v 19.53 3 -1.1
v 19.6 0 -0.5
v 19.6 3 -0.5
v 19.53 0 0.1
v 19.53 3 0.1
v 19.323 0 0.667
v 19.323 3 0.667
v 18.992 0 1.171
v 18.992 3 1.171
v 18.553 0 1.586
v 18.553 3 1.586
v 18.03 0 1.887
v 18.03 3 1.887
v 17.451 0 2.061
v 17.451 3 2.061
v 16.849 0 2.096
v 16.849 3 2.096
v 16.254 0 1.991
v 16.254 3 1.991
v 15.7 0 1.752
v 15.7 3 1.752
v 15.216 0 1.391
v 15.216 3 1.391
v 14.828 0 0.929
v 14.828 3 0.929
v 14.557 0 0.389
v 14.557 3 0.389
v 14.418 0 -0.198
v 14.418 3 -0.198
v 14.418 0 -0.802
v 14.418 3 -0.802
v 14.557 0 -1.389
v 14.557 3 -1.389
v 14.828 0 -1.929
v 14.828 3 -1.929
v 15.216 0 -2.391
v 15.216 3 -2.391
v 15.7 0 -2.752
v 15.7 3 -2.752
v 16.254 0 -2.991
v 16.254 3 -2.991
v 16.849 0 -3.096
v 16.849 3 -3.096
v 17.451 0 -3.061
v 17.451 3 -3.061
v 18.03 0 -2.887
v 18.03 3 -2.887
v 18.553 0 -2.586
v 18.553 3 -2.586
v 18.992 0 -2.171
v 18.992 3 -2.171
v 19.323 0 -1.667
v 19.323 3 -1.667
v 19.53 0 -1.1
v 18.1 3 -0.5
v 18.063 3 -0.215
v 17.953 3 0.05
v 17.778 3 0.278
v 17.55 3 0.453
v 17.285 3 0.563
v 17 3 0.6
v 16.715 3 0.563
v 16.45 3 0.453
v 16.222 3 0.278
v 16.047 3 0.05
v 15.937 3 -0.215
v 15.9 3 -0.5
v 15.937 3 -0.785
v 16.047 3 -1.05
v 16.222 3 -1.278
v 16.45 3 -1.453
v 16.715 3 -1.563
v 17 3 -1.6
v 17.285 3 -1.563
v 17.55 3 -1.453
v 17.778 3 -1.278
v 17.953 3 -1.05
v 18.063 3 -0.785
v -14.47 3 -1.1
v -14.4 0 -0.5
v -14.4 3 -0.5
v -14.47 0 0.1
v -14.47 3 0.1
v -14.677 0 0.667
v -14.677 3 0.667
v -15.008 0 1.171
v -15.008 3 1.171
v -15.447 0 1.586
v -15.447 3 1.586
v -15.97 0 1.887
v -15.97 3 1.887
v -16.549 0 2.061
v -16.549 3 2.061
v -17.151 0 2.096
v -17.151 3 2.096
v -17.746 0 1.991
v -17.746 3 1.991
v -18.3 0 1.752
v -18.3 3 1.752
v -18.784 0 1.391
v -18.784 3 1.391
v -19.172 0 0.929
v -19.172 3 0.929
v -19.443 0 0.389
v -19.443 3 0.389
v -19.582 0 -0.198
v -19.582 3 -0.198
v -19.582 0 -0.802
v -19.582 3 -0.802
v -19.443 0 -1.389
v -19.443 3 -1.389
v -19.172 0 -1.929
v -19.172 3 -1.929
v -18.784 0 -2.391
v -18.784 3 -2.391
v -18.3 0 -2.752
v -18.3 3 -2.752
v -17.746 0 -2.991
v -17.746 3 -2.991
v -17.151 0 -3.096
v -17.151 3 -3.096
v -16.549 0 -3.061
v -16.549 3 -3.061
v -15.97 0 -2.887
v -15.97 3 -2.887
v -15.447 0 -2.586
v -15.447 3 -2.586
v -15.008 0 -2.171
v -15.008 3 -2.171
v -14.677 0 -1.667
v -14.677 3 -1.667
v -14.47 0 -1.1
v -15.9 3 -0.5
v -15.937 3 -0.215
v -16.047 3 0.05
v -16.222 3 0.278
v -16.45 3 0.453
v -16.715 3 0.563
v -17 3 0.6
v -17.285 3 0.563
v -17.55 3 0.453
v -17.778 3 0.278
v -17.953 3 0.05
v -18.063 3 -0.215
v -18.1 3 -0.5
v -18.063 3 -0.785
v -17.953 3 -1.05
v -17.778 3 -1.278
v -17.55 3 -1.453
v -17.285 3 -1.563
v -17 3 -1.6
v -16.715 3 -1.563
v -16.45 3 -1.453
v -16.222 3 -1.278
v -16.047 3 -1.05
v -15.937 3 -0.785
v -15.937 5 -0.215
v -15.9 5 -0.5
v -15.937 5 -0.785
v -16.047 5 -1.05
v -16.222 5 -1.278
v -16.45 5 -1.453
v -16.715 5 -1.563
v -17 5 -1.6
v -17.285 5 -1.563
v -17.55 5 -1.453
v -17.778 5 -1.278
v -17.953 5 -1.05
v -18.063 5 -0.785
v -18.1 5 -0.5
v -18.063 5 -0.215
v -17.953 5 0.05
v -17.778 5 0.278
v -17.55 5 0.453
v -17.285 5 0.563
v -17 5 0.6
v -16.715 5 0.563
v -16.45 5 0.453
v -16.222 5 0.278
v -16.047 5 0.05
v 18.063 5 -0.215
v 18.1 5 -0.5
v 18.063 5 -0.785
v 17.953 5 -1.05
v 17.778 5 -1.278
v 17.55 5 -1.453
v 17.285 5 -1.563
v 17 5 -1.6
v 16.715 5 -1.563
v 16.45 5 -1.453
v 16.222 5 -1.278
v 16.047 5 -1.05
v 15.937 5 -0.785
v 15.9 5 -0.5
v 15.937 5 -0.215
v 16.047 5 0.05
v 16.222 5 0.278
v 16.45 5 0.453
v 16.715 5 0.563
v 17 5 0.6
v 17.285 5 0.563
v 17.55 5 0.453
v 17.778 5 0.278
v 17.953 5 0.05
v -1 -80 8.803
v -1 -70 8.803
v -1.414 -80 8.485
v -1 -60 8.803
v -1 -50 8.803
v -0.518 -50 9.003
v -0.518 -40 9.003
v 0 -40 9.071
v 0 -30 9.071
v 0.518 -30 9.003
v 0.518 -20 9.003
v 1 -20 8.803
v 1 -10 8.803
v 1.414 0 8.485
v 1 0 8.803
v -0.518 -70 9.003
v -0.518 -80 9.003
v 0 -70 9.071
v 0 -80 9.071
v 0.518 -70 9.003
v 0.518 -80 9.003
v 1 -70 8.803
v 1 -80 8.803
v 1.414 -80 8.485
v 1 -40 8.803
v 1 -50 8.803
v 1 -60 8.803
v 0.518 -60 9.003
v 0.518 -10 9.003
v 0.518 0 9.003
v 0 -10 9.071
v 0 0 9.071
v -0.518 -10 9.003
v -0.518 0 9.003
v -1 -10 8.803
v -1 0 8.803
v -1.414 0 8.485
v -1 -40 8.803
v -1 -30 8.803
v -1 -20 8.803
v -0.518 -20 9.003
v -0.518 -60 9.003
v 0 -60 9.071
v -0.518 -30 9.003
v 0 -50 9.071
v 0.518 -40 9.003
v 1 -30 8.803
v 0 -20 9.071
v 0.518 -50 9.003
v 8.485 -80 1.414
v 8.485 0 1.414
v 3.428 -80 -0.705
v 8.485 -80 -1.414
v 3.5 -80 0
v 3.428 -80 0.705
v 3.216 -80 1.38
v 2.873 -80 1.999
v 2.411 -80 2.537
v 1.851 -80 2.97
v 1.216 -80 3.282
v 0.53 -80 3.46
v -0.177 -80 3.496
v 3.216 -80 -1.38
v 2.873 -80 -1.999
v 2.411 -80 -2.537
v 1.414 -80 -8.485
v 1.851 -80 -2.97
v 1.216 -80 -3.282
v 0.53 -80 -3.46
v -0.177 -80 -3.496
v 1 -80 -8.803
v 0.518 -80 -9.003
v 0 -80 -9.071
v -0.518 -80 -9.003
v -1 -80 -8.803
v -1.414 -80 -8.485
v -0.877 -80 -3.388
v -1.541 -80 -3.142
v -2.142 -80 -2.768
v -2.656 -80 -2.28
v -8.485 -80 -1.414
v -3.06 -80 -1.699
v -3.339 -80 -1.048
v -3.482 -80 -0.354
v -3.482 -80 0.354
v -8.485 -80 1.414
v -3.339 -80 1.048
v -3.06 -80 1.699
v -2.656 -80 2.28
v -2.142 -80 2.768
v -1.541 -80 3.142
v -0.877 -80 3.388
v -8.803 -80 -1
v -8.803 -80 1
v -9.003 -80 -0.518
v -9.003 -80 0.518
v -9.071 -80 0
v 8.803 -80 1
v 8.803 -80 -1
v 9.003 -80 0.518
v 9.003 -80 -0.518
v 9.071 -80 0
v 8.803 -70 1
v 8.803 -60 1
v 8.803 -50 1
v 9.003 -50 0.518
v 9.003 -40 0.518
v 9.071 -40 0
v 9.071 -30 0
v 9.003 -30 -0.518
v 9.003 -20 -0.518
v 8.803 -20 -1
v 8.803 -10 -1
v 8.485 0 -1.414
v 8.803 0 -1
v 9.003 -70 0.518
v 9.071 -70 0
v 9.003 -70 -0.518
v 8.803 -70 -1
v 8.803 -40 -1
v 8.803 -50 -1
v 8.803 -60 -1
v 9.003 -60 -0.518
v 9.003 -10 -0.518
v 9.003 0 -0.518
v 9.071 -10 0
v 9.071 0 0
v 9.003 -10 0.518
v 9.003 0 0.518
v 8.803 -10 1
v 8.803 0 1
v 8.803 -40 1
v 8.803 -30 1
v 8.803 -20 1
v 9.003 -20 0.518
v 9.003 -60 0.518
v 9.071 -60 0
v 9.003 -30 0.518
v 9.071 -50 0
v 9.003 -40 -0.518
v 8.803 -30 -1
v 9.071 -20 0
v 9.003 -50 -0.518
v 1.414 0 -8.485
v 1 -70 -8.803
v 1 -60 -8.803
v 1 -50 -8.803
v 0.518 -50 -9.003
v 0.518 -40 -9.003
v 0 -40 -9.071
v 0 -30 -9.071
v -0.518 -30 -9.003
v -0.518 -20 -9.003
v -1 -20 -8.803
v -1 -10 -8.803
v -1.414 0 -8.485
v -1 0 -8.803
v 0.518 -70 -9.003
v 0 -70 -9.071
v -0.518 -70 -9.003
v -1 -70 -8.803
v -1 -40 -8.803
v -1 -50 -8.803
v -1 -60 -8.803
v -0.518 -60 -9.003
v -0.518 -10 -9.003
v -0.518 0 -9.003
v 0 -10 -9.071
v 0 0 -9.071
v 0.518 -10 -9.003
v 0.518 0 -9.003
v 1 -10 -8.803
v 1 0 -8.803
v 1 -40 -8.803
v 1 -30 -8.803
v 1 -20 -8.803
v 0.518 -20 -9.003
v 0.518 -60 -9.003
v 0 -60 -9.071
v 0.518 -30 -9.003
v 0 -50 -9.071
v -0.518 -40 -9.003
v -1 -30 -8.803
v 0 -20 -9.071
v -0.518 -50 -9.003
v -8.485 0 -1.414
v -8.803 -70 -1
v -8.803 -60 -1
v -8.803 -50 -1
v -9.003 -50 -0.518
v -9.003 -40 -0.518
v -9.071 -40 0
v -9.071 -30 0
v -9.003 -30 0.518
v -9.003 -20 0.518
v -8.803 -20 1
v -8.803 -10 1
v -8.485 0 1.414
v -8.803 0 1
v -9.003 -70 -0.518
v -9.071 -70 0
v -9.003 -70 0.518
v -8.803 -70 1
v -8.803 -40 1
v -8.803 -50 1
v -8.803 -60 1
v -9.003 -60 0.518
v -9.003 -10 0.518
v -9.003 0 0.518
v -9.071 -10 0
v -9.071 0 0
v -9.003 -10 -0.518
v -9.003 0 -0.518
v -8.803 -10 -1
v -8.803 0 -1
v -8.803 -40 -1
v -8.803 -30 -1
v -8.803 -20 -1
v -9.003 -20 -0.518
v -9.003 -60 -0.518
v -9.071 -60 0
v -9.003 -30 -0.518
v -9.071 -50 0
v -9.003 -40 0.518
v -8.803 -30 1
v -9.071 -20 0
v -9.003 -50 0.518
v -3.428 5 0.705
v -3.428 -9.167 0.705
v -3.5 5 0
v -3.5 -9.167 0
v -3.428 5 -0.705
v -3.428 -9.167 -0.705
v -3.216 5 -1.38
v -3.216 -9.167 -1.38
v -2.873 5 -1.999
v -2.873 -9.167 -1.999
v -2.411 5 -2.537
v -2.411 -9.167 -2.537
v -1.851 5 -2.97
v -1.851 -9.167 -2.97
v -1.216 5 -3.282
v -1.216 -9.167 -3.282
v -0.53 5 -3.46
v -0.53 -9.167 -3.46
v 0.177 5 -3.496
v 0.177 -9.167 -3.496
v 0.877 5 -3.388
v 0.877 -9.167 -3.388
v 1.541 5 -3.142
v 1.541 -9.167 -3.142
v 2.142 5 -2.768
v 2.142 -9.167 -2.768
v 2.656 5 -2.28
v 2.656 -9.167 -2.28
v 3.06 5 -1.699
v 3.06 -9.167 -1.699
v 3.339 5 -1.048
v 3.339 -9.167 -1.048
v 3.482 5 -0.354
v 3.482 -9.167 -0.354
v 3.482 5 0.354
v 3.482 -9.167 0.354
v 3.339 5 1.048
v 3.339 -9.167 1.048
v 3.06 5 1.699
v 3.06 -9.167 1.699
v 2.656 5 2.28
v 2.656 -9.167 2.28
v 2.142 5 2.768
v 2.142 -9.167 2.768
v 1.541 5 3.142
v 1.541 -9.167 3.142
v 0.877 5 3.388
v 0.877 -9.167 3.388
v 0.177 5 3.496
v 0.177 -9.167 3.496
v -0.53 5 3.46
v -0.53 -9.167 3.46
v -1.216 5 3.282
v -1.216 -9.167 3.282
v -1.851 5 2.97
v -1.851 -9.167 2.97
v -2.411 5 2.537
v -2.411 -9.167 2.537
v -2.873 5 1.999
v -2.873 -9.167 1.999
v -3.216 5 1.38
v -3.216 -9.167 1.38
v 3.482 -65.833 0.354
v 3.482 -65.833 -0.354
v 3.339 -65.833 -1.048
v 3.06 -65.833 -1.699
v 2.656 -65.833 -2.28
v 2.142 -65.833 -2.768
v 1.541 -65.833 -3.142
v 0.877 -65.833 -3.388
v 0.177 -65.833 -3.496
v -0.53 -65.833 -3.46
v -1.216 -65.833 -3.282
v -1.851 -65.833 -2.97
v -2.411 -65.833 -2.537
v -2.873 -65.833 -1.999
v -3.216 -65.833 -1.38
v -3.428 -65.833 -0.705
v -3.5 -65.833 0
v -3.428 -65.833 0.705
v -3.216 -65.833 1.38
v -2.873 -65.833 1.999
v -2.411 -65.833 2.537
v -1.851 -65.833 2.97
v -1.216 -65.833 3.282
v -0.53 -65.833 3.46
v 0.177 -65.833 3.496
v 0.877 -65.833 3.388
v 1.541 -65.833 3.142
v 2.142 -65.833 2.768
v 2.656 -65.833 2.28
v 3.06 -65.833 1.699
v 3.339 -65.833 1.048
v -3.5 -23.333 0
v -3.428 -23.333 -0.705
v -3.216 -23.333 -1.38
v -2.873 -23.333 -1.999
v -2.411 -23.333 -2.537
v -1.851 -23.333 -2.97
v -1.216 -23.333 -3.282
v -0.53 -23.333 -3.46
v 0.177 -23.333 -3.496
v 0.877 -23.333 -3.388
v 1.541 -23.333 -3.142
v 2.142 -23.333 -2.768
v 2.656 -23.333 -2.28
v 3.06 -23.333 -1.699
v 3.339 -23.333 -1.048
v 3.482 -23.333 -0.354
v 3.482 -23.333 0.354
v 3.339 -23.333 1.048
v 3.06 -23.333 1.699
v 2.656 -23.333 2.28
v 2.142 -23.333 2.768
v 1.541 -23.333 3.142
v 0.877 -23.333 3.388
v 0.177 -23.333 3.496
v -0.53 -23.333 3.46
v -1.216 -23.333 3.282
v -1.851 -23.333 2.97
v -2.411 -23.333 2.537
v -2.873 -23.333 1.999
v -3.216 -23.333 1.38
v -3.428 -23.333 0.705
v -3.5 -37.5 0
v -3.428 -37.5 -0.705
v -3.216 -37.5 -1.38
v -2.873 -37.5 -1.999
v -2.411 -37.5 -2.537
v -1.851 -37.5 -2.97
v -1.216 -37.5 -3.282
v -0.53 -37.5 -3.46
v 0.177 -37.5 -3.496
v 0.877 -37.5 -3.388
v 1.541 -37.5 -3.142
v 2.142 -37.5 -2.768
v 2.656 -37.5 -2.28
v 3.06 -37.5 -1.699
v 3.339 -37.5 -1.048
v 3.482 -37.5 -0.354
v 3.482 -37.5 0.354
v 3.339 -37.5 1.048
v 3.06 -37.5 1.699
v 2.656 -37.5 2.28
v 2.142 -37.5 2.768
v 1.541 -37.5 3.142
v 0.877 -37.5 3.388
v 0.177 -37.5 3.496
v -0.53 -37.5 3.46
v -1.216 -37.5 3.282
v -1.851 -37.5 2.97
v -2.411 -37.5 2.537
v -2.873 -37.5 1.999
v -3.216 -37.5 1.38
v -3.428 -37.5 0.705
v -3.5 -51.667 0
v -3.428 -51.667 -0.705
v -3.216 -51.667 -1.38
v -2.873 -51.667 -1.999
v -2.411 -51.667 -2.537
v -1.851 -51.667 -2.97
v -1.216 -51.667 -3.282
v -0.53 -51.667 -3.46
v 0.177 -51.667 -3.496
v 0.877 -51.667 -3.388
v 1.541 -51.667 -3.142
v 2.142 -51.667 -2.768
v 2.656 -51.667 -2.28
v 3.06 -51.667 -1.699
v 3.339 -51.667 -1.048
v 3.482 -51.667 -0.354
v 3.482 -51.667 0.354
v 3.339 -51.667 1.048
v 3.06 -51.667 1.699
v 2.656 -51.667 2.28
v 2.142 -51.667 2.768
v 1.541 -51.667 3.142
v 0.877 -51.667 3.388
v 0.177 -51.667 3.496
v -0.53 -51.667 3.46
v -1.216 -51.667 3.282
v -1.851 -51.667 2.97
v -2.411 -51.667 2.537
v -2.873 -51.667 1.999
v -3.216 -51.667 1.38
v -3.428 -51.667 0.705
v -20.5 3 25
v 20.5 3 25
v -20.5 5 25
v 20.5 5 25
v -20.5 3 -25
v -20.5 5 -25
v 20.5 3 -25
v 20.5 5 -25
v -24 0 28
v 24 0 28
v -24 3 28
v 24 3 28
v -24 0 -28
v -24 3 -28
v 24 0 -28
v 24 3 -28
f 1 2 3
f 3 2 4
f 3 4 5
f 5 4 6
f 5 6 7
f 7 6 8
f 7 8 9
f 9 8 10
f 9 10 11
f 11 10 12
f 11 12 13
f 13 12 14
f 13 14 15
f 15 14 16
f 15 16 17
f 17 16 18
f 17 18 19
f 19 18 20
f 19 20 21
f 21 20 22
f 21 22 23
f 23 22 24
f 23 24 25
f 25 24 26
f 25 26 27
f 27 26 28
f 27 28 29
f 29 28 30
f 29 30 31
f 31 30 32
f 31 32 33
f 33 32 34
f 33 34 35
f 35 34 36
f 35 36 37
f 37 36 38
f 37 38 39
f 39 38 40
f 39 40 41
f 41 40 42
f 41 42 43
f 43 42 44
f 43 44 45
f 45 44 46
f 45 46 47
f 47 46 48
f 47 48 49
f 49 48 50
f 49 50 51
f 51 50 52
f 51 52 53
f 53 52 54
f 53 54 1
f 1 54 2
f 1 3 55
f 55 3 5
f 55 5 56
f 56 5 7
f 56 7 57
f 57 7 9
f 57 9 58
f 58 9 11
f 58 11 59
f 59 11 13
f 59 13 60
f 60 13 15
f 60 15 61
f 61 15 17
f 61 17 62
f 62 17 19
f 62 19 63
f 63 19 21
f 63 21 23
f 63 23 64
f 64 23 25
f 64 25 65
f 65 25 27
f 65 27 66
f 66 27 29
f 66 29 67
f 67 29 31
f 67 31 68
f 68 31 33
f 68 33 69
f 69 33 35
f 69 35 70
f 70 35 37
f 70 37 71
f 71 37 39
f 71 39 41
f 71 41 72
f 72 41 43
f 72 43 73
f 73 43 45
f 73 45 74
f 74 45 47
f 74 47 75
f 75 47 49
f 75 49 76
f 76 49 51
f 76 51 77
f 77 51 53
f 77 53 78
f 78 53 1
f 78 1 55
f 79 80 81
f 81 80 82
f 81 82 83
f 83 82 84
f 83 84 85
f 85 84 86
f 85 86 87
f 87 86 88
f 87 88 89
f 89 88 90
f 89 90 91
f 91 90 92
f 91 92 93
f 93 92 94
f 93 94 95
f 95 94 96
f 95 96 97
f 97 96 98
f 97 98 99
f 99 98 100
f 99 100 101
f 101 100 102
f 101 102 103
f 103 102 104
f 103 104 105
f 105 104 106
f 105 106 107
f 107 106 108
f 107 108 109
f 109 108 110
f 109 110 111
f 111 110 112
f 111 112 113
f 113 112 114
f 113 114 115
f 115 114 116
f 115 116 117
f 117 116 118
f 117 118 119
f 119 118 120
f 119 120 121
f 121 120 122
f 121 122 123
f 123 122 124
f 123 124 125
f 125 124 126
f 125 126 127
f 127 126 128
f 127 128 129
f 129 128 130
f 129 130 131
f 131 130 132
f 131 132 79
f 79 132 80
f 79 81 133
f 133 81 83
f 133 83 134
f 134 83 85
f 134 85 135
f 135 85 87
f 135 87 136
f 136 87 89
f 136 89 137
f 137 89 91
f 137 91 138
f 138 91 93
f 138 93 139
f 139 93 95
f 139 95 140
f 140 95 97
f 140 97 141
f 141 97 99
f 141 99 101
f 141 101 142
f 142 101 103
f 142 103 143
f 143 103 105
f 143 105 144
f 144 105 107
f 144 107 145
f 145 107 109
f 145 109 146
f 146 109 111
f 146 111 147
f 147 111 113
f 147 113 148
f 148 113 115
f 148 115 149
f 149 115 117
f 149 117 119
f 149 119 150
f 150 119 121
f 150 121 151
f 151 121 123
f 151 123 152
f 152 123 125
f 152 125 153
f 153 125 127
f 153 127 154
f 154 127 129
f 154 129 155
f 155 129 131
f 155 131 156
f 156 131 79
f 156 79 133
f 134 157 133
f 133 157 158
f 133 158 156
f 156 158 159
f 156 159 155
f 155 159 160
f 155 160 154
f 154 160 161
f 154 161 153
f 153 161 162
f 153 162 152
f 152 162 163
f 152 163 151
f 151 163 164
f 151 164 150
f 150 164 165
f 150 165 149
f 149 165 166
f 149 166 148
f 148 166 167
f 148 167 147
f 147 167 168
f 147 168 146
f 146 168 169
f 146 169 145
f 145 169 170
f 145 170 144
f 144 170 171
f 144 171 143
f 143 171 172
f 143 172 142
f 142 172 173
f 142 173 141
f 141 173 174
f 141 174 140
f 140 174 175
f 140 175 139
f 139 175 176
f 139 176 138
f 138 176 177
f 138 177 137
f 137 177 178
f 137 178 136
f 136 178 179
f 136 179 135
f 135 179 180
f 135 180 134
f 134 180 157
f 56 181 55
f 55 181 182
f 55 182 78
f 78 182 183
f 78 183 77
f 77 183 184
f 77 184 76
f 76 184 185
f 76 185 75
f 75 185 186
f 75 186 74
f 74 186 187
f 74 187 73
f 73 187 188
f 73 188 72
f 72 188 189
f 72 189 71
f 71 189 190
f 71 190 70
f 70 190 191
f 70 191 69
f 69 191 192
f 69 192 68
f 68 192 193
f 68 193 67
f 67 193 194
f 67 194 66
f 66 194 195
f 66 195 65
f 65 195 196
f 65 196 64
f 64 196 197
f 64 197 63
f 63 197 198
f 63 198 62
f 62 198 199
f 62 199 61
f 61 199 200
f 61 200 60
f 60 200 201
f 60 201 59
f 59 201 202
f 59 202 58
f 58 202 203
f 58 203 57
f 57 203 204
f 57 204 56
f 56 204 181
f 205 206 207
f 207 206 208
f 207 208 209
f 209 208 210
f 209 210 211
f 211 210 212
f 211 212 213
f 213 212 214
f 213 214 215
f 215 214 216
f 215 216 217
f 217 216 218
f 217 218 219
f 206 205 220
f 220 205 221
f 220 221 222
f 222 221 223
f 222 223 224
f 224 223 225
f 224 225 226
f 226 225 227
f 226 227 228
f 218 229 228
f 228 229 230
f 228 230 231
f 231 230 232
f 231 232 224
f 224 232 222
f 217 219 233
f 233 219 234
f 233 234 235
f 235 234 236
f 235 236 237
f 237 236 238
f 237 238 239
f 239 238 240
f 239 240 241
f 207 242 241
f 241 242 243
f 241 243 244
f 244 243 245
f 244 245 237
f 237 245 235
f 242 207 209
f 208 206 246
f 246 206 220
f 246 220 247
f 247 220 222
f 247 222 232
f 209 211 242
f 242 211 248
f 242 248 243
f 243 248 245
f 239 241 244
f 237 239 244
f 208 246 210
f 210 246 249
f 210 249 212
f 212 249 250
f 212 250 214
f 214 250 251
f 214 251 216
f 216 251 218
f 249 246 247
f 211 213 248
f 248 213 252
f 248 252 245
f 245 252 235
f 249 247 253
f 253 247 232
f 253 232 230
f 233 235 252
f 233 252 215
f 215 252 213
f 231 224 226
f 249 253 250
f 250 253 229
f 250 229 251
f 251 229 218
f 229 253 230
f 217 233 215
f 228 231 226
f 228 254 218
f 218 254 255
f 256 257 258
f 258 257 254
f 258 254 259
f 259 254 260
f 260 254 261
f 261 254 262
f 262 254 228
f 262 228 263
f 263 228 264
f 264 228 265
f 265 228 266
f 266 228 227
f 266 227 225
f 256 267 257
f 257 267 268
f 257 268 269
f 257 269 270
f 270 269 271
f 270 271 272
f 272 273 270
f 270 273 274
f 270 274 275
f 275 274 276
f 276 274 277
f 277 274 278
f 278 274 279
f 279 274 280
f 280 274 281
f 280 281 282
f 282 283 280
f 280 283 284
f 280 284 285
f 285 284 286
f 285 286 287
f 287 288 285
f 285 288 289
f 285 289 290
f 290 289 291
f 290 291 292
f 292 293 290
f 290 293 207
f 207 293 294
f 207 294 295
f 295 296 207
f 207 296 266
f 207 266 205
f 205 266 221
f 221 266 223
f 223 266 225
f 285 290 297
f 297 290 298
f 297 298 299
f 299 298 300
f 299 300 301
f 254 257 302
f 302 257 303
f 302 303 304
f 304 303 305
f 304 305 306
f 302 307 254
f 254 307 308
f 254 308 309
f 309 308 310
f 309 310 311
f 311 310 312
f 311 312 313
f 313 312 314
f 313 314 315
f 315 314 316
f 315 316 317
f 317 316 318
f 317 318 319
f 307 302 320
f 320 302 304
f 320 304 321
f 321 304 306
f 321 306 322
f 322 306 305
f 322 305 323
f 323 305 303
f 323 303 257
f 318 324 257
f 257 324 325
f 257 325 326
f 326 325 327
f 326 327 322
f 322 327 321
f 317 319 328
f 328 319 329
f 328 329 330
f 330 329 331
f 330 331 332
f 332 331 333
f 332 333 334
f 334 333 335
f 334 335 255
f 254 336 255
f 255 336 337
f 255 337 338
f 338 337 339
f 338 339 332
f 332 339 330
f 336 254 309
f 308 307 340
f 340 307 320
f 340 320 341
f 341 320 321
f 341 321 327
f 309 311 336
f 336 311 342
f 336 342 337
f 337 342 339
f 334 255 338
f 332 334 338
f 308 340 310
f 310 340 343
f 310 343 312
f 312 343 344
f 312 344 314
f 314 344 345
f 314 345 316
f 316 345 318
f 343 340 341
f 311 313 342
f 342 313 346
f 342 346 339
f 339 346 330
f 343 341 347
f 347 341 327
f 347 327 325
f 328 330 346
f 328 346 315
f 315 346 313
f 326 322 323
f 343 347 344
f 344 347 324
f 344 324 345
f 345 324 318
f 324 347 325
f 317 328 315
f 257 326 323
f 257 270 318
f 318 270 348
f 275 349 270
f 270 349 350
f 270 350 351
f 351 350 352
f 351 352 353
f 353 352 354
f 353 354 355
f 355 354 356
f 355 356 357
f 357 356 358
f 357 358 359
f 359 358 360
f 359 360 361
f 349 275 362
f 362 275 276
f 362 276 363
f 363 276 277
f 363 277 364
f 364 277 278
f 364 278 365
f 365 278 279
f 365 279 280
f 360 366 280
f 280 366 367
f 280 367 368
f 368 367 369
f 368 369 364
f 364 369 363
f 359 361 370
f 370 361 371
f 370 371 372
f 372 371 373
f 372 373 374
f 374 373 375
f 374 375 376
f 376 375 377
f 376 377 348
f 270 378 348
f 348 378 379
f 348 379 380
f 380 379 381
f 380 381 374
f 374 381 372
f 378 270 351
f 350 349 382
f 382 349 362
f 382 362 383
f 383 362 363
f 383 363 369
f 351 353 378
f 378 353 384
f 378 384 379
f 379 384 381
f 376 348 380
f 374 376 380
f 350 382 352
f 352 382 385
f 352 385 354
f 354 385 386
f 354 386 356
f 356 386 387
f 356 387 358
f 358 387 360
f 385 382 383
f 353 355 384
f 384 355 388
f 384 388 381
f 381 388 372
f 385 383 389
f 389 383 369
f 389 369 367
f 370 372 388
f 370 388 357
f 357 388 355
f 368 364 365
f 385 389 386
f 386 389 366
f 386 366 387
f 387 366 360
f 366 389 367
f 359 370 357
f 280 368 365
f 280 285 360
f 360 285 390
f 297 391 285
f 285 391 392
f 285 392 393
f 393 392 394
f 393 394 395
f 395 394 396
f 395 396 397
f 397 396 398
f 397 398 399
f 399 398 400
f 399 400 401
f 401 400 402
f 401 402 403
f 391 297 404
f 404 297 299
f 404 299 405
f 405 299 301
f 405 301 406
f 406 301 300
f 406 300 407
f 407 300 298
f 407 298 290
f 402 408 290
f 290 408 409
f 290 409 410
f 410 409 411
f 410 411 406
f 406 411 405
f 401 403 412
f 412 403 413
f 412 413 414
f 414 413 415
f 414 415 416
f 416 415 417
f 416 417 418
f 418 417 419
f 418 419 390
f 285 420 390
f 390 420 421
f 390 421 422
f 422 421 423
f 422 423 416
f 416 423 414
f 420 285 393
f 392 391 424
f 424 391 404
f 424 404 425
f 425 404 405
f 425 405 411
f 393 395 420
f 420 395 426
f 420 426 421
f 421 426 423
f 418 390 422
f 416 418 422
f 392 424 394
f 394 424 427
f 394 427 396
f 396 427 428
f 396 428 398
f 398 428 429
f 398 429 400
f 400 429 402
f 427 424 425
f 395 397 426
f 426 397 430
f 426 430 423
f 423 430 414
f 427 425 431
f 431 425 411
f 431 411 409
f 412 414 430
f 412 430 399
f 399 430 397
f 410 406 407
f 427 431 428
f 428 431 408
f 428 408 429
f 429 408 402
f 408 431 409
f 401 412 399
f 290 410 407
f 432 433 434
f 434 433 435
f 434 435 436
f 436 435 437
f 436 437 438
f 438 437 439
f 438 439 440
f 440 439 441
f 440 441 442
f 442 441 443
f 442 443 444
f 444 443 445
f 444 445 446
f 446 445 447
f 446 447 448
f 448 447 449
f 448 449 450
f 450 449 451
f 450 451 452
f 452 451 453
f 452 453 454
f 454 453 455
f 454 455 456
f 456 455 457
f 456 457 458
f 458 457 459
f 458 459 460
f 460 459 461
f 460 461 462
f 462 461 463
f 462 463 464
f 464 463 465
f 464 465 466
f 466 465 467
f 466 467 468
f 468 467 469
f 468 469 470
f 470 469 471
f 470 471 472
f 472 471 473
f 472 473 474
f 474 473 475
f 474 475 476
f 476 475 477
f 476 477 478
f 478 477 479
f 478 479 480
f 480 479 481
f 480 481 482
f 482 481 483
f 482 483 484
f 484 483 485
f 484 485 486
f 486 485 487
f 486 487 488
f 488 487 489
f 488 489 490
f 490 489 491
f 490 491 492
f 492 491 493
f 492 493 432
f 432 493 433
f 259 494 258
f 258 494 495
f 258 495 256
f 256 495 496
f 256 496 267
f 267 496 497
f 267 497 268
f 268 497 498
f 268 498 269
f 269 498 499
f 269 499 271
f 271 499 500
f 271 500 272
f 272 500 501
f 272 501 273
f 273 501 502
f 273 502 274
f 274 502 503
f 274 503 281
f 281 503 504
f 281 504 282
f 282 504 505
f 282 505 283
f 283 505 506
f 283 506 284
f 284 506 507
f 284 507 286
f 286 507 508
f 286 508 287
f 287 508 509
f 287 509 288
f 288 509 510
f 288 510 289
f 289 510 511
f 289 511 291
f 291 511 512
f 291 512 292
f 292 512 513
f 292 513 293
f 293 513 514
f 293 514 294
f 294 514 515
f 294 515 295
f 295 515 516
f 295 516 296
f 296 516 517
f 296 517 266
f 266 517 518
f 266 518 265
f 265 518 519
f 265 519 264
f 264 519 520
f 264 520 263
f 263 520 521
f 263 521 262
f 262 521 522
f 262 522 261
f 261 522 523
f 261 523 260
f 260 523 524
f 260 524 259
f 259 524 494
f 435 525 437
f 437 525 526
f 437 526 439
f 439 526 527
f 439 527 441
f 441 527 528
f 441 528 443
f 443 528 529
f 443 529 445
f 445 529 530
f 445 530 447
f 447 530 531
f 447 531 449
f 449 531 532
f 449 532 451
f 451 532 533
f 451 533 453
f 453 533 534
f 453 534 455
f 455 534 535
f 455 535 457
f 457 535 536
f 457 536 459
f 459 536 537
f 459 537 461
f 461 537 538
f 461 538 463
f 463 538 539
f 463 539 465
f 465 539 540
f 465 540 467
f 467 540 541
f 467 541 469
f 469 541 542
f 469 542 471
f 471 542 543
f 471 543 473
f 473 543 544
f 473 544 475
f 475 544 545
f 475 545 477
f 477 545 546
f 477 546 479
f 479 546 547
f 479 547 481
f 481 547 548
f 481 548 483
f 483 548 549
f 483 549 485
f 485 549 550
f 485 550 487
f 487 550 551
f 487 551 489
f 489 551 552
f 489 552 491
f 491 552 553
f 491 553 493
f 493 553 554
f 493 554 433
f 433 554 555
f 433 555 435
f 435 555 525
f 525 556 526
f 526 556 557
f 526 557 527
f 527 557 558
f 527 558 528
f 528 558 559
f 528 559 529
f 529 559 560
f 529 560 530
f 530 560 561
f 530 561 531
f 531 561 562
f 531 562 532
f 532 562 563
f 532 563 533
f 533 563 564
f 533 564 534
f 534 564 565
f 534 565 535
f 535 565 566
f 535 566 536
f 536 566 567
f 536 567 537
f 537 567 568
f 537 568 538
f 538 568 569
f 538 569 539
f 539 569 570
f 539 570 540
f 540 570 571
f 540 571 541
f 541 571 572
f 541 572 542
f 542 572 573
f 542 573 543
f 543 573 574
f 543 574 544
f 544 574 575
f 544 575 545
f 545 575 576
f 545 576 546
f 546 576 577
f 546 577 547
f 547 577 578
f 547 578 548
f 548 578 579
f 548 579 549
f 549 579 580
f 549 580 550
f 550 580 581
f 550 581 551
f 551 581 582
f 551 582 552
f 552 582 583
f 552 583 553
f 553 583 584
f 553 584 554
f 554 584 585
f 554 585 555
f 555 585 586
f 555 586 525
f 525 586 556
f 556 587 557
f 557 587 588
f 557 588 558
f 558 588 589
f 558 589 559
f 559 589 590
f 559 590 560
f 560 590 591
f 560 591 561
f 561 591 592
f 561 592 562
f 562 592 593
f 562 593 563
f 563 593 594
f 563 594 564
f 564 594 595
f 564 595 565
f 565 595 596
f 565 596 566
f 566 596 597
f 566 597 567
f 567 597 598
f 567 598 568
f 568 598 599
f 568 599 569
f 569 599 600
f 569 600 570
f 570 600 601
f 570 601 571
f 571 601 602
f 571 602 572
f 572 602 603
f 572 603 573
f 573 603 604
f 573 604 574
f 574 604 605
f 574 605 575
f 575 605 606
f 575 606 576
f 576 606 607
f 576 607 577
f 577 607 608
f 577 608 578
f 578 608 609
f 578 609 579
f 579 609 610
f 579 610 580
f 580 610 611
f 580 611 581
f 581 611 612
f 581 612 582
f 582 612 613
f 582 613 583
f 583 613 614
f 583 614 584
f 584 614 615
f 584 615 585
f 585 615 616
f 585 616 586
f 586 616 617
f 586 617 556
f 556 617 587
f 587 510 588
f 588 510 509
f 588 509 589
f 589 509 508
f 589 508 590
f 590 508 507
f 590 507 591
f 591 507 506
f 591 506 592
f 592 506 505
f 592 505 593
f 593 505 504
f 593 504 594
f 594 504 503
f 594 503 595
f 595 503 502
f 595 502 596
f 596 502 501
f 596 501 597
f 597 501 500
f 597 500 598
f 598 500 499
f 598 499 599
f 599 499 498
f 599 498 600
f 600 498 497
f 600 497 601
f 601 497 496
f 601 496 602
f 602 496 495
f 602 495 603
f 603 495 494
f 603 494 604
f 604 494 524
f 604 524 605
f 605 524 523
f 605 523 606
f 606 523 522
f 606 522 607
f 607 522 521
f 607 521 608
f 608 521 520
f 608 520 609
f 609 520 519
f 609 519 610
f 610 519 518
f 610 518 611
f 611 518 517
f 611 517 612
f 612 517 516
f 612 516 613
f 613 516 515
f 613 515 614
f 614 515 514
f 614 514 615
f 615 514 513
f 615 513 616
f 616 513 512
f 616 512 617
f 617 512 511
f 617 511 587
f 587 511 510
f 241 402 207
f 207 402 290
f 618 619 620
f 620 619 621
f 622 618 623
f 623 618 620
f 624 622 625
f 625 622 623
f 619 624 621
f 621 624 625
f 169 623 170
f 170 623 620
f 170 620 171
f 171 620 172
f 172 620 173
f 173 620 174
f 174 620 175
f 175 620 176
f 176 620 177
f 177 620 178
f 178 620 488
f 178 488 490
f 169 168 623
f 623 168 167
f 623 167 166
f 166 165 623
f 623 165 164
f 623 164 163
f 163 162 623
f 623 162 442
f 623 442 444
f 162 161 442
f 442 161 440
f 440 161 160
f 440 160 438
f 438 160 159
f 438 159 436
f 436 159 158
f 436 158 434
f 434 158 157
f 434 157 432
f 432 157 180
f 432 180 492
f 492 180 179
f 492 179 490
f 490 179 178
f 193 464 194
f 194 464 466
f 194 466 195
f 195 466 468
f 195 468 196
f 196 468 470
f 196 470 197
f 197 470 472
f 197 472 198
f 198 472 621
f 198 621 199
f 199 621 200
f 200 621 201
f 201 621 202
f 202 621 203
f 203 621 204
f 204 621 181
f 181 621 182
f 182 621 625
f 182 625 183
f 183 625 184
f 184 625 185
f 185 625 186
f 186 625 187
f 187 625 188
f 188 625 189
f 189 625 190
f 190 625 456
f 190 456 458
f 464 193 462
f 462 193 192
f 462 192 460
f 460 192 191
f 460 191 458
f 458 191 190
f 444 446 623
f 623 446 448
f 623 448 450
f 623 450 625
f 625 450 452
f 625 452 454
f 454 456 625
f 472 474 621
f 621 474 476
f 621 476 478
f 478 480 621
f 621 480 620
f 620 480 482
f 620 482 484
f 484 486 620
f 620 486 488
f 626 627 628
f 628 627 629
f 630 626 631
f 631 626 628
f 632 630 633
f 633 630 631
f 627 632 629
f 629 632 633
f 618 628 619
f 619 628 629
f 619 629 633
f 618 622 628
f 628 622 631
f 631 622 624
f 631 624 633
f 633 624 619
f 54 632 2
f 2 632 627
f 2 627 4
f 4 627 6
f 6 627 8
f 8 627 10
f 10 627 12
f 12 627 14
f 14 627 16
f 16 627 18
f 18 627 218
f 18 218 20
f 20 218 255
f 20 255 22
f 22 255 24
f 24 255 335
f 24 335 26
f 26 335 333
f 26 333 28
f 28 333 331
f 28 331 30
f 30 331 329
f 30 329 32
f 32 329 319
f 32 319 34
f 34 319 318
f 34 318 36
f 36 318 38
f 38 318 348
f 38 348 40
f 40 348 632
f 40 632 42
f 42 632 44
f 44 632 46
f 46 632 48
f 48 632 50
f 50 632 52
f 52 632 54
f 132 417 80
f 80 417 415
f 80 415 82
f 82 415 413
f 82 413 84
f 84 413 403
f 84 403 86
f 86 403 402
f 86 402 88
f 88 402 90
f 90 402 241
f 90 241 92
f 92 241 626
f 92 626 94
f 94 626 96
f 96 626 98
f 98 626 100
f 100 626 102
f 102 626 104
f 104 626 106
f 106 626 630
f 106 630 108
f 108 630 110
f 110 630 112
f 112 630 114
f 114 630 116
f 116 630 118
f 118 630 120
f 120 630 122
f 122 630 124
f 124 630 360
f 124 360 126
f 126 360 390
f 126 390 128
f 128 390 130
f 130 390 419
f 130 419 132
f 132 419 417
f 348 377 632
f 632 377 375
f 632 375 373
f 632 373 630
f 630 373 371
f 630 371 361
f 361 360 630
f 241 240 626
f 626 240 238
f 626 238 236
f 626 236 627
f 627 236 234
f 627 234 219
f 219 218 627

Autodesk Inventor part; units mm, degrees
ref_plane "YZ Plane" through (0, 0, 0) normal (1, 0, 0) x (0, 1, 0)
ref_plane "XZ Plane" through (0, 0, 0) normal (0, 1, 0) x (-1, 0, 0)
ref_plane "XY Plane" through (0, 0, 0) normal (0, 0, 1) x (1, 0, 0)
sketch "Esboço1" plane through (0, 0, 0) normal (0, 1, 0) x (-1, 0, 0)
  line L0 (24, 28) -> (-24, 28)
  line L1 (-24, 28) -> (-24, -28)
  line L2 (-24, -28) -> (24, -28)
  line L3 (24, -28) -> (24, 28)
  line L4 (24, 28) -> (-24, -28) construction
  line L5 (-24, 28) -> (24, -28) construction
  point P0 (0, 0)
  dimension "d0" = 48
  dimension "d1" = 56
extrude "Base" add sketch "Esboço1" along normal blind 3
sketch "Esboço2" plane through (0, 3, 0) normal (0, 1, 0) x (1, 0, 0)
  line L0 (-20.5, -25) -> (20.5, -25)
  line L1 (20.5, -25) -> (20.5, 25)
  line L2 (20.5, 25) -> (-20.5, 25)
  line L3 (-20.5, 25) -> (-20.5, -25)
  line L4 (-20.5, -25) -> (20.5, 25) construction
  line L5 (20.5, -25) -> (-20.5, 25) construction
  line L6 (-24, 28) -> (-24, -28) projected
  point P0 (0, 0)
  dimension "d4" = 41
  dimension "d5" = 50
extrude "Encaixe" add sketch "Esboço2" along normal blind 2
ref_plane "Plano de trabalho2" through (0, 0, -28) normal (-1, 0, 0) x (0, 0, 1)
sketch "Esboço9" plane through (0, 0, 0) normal (0, -1, 0) x (1, 0, 0)
  line L0 (9.8995, 0) -> (0, -9.8995)
  line L1 (0, -9.8995) -> (-9.8995, 0)
  line L2 (-9.8995, 0) -> (0, 9.8995)
  line L3 (0, 9.8995) -> (9.8995, 0)
  point P0 (0, 0)
  point P1 (0, 0)
  dimension "d33" = 14
extrude "Extrusão7" add sketch "Esboço9" along normal blind 80
sketch "Esboço10" plane through (0, -80, 0) normal (0, -1, 0) x (1, 0, 0)
  circle A0 centre (0, 0) radius 3.5
  dimension "d36" = 7
extrude "Extrusão8" cut sketch "Esboço10" against normal up to surface (85 mm away)
fillet "Arredondamento1" radius 2 4 edges at (-9.8995, -40, 0) (0, -40, -9.8995) (9.8995, -40, 0) (0, -40, 9.8995)
sketch "Esboço11" plane through (0, 0, 0) normal (0, -1, 0) x (1, 0, 0)
  circle A0 centre (-17, -0.5) radius 1.1
  circle A1 centre (17, -0.5) radius 1.1
  line L0 (-24, -28) -> (-24, 28) projected
  line L1 (24, 28) -> (24, -28) projected
  line L2 (24, -28) -> (-24, -28) projected
  point P0 (0, 0)
  dimension "d40" = 2.2
  dimension "d41" = 2.2
  dimension "d42" = 7
  dimension "d43" = 7
  dimension "d44" = 27.5
  dimension "d45" = 27.5
extrude "Extrusão9" cut sketch "Esboço11" against normal up to next
sketch "Esboço12" plane through (0, 0, 0) normal (0, -1, 0) x (1, 0, 0)
  circle A0 centre (-17, -0.5) radius 1.1 projected
  circle A1 centre (-17, -0.5) radius 2.6
  circle A2 centre (17, -0.5) radius 1.1 projected
  circle A3 centre (17, -0.5) radius 2.6
  point P0 (0, 0)
  dimension "d48" = 5.2
  dimension "d49" = 5.2
extrude "Extrusão10" cut sketch "Esboço12" against normal blind 3
properties part number "Tampa Eletroimã_3DPrint"
